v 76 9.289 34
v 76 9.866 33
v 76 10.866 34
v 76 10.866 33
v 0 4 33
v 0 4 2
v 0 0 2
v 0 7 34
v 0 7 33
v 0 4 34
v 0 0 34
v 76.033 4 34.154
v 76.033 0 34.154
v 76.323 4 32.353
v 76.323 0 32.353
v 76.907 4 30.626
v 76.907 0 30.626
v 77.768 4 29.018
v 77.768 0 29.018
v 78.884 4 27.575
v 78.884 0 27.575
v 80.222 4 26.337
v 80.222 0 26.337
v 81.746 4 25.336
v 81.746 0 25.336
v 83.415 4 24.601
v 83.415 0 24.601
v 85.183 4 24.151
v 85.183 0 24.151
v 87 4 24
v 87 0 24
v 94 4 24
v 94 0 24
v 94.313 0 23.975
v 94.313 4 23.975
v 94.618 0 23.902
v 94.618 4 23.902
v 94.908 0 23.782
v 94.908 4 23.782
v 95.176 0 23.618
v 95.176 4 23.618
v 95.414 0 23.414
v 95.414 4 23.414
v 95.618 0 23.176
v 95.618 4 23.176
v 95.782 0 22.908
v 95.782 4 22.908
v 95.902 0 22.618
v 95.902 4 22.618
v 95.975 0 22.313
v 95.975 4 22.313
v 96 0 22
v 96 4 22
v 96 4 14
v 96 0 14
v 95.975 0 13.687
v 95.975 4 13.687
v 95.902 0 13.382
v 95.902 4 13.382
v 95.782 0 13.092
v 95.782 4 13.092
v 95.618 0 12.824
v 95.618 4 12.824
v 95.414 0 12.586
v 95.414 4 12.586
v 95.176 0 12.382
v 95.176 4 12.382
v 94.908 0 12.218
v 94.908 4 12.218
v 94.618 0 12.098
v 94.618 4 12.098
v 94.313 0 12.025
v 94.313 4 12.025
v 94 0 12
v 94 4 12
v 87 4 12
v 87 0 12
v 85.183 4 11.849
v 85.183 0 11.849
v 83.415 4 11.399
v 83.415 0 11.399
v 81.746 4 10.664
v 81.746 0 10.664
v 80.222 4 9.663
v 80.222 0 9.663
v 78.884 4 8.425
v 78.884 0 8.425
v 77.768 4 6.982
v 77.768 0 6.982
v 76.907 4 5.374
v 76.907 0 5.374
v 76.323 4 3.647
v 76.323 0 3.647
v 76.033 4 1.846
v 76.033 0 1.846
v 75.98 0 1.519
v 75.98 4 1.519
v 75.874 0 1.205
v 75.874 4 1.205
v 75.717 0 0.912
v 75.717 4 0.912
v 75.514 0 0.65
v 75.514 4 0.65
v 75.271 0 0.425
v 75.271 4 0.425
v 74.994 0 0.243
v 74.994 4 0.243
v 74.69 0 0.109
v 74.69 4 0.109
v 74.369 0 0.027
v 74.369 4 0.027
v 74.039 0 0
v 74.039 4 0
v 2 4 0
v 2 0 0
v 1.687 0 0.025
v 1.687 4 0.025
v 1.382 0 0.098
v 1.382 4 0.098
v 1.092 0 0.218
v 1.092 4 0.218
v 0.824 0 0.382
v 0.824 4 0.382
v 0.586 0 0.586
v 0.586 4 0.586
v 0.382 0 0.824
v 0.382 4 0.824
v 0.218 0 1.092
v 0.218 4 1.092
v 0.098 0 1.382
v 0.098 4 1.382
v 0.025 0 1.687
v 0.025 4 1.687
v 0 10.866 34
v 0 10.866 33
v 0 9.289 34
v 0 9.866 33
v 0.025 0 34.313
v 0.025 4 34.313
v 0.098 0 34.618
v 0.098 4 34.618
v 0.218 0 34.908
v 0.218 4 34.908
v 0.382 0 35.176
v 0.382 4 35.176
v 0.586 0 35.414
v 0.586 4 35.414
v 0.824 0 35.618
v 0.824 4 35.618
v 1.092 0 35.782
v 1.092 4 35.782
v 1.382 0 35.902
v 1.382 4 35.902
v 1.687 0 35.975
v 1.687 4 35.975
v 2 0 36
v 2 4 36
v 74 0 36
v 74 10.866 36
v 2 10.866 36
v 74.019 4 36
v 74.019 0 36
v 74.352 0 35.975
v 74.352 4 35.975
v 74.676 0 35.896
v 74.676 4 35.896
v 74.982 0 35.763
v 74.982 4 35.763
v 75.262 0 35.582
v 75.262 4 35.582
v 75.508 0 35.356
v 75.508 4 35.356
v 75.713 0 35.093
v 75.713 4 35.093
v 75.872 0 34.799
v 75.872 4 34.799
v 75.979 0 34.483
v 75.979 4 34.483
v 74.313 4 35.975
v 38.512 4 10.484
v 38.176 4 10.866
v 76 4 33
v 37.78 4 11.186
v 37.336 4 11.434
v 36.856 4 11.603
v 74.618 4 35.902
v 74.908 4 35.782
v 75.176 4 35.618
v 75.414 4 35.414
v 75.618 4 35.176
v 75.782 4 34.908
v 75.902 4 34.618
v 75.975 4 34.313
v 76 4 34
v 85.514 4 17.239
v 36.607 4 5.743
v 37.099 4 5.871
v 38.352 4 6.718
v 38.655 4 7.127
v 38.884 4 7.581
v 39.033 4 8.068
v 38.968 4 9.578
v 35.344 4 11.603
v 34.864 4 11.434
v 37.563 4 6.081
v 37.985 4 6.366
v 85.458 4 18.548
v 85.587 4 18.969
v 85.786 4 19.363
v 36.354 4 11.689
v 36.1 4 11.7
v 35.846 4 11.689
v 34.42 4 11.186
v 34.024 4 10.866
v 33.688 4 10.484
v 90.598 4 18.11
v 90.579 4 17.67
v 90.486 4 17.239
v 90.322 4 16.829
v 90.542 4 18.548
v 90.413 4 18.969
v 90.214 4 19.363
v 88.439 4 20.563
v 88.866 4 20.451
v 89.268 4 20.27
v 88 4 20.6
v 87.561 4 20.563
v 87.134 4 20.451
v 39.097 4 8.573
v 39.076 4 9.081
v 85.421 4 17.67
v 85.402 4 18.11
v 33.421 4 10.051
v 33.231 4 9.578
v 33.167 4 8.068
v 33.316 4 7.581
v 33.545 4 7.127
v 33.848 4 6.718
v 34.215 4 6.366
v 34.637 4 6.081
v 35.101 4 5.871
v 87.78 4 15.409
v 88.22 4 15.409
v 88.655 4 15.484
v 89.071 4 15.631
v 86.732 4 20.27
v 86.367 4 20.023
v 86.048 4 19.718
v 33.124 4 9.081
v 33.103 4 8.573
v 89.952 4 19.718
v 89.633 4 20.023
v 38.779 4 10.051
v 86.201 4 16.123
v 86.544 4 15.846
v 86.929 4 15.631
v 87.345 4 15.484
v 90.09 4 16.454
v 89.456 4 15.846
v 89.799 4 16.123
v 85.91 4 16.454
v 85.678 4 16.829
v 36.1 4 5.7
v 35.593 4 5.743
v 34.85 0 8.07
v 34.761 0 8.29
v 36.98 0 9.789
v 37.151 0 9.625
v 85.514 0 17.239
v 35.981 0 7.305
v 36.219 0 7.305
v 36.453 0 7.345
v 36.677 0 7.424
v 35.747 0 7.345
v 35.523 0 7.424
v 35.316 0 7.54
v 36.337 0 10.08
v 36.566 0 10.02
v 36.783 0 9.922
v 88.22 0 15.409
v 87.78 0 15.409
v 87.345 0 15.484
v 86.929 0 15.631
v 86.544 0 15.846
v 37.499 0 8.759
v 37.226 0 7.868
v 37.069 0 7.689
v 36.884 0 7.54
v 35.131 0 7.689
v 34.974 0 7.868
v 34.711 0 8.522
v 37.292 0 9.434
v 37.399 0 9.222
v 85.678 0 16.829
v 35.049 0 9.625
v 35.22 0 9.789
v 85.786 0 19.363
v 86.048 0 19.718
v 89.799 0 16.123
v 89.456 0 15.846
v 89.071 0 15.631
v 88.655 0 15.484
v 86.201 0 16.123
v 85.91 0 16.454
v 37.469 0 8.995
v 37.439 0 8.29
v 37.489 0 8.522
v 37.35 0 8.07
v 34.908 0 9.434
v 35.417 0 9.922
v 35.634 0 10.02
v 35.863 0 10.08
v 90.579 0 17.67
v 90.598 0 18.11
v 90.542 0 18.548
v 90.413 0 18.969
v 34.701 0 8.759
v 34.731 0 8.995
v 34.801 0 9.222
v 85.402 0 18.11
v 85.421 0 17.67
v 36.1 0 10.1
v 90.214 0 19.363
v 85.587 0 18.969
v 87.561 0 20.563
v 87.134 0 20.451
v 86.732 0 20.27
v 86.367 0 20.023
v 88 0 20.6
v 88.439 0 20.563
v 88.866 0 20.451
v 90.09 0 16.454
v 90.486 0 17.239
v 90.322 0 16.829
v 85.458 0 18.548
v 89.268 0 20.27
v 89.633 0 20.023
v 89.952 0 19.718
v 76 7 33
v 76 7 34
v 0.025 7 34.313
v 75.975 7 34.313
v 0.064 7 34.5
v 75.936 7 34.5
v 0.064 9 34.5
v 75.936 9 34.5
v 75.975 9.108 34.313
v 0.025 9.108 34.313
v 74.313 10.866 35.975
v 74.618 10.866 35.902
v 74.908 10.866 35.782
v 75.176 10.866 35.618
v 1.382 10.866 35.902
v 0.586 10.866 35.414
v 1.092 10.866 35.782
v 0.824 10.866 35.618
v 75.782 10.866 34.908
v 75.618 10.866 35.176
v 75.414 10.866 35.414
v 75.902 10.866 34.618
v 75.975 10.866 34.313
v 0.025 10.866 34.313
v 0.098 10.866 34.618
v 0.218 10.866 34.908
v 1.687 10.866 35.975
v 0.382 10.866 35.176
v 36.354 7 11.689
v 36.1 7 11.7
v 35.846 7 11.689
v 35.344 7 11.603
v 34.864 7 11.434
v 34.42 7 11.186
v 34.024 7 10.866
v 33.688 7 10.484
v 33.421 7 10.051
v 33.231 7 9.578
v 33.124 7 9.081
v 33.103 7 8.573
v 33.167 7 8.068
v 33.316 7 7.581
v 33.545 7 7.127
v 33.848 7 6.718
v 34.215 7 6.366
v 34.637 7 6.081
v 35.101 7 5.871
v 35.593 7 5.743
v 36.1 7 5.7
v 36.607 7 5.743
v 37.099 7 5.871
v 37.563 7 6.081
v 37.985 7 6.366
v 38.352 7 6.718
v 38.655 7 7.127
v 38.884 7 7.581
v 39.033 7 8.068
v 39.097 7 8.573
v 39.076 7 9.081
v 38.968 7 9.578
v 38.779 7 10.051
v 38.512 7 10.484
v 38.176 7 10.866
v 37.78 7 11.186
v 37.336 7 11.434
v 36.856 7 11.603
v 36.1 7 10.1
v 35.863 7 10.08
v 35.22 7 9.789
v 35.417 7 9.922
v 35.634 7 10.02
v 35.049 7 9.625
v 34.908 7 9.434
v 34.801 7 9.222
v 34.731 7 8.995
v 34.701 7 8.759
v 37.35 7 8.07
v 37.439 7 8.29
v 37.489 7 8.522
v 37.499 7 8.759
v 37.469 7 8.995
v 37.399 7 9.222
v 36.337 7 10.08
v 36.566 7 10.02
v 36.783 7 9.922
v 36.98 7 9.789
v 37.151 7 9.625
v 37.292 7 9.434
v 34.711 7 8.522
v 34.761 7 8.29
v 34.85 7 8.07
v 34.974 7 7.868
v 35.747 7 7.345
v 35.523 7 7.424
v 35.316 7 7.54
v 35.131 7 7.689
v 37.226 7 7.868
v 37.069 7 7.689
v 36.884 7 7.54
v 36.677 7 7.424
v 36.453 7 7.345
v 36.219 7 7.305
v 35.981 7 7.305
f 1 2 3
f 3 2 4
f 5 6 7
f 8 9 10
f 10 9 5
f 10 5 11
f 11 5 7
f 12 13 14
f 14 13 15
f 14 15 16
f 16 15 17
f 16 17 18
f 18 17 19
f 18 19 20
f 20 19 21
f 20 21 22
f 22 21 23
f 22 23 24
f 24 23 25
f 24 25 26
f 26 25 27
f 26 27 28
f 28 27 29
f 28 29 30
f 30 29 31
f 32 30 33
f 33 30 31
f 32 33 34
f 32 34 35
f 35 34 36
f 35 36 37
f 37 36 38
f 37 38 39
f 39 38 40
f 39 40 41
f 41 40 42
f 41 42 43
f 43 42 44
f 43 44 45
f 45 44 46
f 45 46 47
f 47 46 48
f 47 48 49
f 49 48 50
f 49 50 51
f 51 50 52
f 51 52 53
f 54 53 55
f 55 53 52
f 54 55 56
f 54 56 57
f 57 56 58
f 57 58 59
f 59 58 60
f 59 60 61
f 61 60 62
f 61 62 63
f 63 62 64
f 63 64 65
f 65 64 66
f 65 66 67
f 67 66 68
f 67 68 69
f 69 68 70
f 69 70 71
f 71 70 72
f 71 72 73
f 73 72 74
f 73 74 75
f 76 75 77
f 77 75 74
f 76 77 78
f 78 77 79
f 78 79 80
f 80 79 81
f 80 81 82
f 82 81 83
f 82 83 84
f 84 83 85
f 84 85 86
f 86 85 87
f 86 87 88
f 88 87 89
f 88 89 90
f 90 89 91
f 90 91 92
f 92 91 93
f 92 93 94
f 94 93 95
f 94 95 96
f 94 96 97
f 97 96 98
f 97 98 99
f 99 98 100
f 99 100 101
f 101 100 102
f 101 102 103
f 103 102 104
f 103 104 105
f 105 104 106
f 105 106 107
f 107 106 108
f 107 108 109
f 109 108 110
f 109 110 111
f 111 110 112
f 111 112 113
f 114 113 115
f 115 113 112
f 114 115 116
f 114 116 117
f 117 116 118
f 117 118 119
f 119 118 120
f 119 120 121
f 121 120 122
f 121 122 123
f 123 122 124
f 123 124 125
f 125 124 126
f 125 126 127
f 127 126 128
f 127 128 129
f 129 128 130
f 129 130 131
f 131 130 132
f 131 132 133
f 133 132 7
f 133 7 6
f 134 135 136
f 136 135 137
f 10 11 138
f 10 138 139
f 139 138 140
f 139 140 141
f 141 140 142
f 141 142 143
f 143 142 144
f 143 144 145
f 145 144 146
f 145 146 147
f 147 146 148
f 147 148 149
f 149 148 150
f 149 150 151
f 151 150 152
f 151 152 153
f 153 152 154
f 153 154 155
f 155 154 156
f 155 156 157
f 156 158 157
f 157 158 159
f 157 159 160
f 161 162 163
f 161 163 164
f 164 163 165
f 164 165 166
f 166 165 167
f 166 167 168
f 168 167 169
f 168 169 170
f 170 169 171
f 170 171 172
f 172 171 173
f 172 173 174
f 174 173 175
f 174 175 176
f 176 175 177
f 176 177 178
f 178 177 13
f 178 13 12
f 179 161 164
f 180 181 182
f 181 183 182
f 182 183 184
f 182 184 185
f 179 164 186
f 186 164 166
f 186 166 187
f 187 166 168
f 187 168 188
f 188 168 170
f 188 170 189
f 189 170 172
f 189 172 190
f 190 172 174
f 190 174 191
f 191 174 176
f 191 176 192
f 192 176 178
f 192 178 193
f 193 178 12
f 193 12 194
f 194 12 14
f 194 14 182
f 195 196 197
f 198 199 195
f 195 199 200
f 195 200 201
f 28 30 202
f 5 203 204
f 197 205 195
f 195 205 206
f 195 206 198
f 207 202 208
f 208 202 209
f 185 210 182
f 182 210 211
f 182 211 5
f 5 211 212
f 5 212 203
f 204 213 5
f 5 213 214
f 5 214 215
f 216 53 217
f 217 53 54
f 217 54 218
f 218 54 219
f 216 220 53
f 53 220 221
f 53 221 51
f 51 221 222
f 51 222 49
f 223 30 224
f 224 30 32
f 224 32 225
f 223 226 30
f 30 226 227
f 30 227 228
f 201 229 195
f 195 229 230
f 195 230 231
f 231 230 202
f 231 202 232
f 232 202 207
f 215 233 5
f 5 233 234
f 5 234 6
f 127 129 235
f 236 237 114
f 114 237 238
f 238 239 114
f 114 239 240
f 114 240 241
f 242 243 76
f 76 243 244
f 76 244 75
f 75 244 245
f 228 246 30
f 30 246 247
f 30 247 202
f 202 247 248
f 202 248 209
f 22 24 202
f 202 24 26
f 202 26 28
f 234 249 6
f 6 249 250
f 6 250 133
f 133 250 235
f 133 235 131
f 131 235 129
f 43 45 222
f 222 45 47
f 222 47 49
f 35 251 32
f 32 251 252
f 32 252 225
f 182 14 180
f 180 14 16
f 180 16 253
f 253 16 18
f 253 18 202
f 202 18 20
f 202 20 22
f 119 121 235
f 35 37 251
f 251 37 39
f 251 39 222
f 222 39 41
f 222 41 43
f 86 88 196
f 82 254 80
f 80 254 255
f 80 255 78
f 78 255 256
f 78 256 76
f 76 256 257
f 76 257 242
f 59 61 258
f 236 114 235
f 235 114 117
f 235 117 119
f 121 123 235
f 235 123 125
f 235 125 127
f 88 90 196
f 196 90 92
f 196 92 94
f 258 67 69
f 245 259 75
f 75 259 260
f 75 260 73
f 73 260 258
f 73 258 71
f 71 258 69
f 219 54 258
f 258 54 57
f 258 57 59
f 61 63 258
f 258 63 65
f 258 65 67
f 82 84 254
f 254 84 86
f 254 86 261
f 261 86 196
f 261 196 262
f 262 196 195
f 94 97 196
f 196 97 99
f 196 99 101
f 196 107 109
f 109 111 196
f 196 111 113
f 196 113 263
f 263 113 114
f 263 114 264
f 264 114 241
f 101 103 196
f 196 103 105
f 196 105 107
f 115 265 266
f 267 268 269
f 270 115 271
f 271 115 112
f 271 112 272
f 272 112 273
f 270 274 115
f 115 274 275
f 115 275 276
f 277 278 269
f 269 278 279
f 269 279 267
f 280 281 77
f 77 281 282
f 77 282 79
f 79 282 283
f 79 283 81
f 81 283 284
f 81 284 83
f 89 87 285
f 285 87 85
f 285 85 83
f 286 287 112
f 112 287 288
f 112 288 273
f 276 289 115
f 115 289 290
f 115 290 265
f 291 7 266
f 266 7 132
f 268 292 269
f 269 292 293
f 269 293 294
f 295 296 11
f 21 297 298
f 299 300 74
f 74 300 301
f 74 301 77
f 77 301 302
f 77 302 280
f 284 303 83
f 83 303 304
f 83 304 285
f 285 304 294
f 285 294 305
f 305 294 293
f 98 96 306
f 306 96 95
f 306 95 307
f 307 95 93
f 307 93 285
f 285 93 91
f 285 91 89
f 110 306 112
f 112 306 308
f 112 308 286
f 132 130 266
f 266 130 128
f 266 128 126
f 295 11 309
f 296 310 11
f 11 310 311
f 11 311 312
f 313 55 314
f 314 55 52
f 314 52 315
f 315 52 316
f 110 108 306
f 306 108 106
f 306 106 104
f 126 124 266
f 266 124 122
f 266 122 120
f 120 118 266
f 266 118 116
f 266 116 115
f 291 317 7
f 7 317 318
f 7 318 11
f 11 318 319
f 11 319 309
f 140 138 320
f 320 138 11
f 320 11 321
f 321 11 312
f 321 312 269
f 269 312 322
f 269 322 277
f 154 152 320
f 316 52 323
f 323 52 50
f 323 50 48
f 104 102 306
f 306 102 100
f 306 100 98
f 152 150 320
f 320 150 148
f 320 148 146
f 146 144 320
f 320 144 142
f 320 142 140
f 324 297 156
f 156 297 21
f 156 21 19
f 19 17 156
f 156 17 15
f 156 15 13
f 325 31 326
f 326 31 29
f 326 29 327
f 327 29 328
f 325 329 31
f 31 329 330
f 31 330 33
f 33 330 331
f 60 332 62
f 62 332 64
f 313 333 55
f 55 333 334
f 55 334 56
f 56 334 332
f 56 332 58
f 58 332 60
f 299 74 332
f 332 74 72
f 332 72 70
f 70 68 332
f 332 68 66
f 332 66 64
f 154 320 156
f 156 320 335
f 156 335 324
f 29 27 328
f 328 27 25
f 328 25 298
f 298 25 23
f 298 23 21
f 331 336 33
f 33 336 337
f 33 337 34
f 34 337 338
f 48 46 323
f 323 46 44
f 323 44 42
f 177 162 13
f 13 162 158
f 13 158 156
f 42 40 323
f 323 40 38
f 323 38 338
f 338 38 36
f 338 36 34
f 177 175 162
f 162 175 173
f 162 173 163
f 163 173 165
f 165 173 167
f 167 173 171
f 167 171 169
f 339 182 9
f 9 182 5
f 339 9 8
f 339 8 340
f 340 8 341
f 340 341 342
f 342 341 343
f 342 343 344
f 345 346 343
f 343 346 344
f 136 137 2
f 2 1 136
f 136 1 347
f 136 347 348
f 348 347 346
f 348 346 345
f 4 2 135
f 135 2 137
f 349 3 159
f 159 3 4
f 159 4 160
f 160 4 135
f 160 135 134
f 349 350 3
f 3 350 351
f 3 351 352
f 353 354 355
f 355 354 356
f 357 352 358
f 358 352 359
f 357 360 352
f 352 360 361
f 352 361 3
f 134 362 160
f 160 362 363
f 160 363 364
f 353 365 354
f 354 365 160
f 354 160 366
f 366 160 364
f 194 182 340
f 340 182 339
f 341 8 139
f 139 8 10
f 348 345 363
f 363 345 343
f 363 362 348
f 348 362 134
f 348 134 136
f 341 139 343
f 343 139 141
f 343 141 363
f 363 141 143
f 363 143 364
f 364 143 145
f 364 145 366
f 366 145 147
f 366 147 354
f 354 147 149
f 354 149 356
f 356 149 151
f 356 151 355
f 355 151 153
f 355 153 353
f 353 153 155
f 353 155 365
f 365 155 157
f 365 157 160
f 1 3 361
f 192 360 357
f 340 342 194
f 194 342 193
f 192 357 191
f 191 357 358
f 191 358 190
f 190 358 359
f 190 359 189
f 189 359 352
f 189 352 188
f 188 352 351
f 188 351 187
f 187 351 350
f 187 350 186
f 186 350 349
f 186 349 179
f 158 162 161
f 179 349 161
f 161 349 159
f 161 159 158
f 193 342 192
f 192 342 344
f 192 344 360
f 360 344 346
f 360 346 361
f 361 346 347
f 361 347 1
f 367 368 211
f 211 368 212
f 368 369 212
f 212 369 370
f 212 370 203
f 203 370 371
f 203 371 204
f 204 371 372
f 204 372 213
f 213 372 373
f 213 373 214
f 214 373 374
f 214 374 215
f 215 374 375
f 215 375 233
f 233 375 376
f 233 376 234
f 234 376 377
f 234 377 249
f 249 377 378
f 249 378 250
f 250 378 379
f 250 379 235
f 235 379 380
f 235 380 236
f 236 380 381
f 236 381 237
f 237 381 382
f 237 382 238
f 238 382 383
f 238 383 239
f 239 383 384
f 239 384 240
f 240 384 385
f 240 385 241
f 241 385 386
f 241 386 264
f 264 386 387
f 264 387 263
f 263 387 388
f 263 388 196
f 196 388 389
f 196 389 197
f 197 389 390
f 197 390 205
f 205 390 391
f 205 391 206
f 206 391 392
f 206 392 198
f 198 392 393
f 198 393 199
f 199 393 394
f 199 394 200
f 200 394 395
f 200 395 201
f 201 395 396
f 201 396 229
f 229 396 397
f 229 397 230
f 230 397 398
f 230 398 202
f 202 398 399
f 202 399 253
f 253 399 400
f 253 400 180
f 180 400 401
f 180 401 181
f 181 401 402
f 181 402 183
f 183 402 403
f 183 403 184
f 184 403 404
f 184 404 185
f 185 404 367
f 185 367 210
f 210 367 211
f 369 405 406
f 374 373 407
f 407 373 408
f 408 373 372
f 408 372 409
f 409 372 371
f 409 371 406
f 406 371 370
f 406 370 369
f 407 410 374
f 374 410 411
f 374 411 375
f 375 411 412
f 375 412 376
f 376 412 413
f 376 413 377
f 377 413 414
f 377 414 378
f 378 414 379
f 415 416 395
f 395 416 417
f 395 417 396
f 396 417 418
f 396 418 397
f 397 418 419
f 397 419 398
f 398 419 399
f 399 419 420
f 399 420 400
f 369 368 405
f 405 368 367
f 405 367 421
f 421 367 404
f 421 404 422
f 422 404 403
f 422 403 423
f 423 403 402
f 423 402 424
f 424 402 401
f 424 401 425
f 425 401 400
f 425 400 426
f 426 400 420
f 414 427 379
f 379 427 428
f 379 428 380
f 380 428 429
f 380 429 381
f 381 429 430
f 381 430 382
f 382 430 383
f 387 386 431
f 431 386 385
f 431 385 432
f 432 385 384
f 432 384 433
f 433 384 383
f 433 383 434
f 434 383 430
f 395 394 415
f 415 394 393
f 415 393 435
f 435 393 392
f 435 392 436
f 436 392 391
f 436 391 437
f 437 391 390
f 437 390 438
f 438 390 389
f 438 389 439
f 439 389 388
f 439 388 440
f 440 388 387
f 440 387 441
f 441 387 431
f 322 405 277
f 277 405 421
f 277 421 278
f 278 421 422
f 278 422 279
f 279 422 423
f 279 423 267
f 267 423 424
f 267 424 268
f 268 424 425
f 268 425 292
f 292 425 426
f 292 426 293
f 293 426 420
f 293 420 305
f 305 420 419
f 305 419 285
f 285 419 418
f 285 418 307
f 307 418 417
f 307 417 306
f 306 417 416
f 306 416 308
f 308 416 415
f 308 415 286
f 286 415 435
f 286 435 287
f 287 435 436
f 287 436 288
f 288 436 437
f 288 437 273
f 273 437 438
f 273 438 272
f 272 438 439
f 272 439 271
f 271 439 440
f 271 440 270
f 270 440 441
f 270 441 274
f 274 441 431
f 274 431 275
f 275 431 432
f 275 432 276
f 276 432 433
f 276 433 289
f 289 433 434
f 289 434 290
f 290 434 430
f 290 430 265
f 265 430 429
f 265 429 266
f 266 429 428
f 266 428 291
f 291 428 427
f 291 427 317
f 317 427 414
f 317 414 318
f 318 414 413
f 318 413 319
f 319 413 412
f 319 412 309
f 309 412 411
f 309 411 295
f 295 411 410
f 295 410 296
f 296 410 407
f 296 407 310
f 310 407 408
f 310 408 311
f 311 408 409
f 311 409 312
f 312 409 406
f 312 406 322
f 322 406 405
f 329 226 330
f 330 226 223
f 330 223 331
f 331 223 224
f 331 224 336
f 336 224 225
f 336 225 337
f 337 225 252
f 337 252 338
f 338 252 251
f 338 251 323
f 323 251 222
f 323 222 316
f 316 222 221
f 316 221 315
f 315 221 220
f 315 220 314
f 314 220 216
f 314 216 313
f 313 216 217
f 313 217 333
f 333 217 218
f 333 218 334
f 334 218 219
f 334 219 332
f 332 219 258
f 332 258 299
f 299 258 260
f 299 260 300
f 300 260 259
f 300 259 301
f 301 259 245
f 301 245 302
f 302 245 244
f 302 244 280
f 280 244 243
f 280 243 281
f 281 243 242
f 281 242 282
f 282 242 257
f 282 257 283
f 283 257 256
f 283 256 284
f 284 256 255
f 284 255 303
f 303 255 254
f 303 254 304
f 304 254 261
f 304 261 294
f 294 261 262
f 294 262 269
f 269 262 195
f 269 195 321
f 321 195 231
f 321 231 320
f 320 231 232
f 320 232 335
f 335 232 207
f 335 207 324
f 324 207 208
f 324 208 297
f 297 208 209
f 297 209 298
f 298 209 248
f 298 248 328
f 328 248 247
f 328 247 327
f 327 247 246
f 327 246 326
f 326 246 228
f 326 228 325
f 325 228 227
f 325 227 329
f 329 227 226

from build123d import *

# Parameters (mm, degrees)
BOSS_EXTRUDE1_DEPTH     = 4
BOSS_EXTRUDE2_DEPTH     = 76
FILLET1_R               = 2
SKETCH3_R               = 3
BOSS_EXTRUDE3_DEPTH     = 3
CUT_EXTRUDE1_DEPTH      = 103.757687
CUT_EXTRUDE1_DEPTH_BACK = 103.757687
SKETCH4_R               = 2.6
SKETCH4_R_2             = 1.4


with BuildPart() as part:
    # Sketch1 → Boss-Extrude1 (new body)
    with BuildSketch(Plane(origin=(0, 0, 0), x_dir=(1, 0, 0), z_dir=(0, 1, 0))):
        with BuildLine():
            Line((2, 0), (74.038519, 0))
            ThreePointArc((74.038519, 0), (75.397251, -0.532401), (76.032593, -1.846154))
            ThreePointArc((76.032593, -1.846154), (79.526972, -9.071793), (87, -12))
            Line((87, -12), (94, -12))
            ThreePointArc((94, -12), (95.414214, -12.585786), (96, -14))
            Line((96, -14), (96, -22))
            ThreePointArc((96, -22), (95.414214, -23.414214), (94, -24))
            Line((94, -24), (87, -24))
            ThreePointArc((87, -24), (79.526972, -26.928207), (76.032593, -34.153846))
            ThreePointArc((76.032593, -34.153846), (75.397251, -35.467599), (74.038519, -36))
            Line((74.038519, -36), (2, -36))
            ThreePointArc((2, -36), (0.585786, -35.414214), (0, -34))
            Line((0, -34), (0, -2))
            ThreePointArc((0, -2), (0.585786, -0.585786), (2, 0))
        make_face()
    extrude(amount=BOSS_EXTRUDE1_DEPTH)

    # Sketch2 → Boss-Extrude2 (add)
    with BuildSketch(Plane.ZY):
        Polygon((36, 4), (36, 10.866025), (33, 10.866025), (33, 9.866025), (34.5, 9), (34.5, 7), (33, 7), (33, 4), align=None)
    extrude(amount=-BOSS_EXTRUDE2_DEPTH)

    # Fillet1
    # the kernel refuses this fillet: 2 mm, written as the material it takes off along each edge
    with BuildSketch(Plane(origin=(0, -1, 36), x_dir=(0, 0, -1), z_dir=(0, 1, 0))) as fillet1_piece_1:
        with BuildLine():
            CenterArc((FILLET1_R, -FILLET1_R), FILLET1_R, 90, 90)
            Line((0, -FILLET1_R), (0, 0))
            Line((0, 0), (FILLET1_R, 0))
        make_face()
    extrude(amount=16.866025, mode=Mode.SUBTRACT)
    with BuildSketch(Plane(origin=(76, -1, 36), x_dir=(-1, 0, 0), z_dir=(0, 1, 0))) as fillet1_piece_2_section:
        with BuildLine():
            CenterArc((FILLET1_R, -FILLET1_R), FILLET1_R, 90, 90)
            Line((0, -FILLET1_R), (0, 0))
            Line((0, 0), (FILLET1_R, 0))
        make_face()
    fillet1_piece_2 = extrude(amount=16.866025, mode=Mode.PRIVATE)
    fillet1_piece_2 = fillet1_piece_2 - Plane(origin=(74.038519, 2, 34), x_dir=(0.9970370305242855, 0, 0.07692307692308645), z_dir=(0, -1, 0)) * Cylinder(2, 42, mode=Mode.PRIVATE)
    add(fillet1_piece_2, mode=Mode.SUBTRACT)
    with BuildSketch(Plane(origin=(76, 4, 36), x_dir=(-1, 0, 0), z_dir=(0, 1, 0))) as fillet1_piece_3:
        with BuildLine():
            CenterArc((FILLET1_R, -FILLET1_R), FILLET1_R, 90, 90)
            Line((0, -FILLET1_R), (0, 0))
            Line((0, 0), (FILLET1_R, 0))
        make_face()
    extrude(amount=11.866025, mode=Mode.SUBTRACT)

    # Sketch3 → Boss-Extrude3 (add)
    with BuildSketch(Plane(origin=(0, 4, 0), x_dir=(1, 0, 0), z_dir=(0, 1, 0))):
        with Locations(Location((36.1, -8.7, 0), (0, 0, 270))):
            Circle(SKETCH3_R)
    extrude(amount=BOSS_EXTRUDE3_DEPTH)

    # Sketch4 → Cut-Extrude1 (cut, two sides: drawn at the far end of the back side and taken through both)
    with BuildSketch(Plane(origin=(0, 4, 0), x_dir=(1, 0, 0), z_dir=(0, 1, 0)).offset(-CUT_EXTRUDE1_DEPTH_BACK)):
        with Locations(Location((88, -18, 0), (0, 0, 270))):
            Circle(SKETCH4_R)
        with Locations(Location((36.1, -8.7, 0), (0, 0, 270))):
            Circle(SKETCH4_R_2)
    extrude(amount=CUT_EXTRUDE1_DEPTH + CUT_EXTRUDE1_DEPTH_BACK, mode=Mode.SUBTRACT)


solid = part.part
